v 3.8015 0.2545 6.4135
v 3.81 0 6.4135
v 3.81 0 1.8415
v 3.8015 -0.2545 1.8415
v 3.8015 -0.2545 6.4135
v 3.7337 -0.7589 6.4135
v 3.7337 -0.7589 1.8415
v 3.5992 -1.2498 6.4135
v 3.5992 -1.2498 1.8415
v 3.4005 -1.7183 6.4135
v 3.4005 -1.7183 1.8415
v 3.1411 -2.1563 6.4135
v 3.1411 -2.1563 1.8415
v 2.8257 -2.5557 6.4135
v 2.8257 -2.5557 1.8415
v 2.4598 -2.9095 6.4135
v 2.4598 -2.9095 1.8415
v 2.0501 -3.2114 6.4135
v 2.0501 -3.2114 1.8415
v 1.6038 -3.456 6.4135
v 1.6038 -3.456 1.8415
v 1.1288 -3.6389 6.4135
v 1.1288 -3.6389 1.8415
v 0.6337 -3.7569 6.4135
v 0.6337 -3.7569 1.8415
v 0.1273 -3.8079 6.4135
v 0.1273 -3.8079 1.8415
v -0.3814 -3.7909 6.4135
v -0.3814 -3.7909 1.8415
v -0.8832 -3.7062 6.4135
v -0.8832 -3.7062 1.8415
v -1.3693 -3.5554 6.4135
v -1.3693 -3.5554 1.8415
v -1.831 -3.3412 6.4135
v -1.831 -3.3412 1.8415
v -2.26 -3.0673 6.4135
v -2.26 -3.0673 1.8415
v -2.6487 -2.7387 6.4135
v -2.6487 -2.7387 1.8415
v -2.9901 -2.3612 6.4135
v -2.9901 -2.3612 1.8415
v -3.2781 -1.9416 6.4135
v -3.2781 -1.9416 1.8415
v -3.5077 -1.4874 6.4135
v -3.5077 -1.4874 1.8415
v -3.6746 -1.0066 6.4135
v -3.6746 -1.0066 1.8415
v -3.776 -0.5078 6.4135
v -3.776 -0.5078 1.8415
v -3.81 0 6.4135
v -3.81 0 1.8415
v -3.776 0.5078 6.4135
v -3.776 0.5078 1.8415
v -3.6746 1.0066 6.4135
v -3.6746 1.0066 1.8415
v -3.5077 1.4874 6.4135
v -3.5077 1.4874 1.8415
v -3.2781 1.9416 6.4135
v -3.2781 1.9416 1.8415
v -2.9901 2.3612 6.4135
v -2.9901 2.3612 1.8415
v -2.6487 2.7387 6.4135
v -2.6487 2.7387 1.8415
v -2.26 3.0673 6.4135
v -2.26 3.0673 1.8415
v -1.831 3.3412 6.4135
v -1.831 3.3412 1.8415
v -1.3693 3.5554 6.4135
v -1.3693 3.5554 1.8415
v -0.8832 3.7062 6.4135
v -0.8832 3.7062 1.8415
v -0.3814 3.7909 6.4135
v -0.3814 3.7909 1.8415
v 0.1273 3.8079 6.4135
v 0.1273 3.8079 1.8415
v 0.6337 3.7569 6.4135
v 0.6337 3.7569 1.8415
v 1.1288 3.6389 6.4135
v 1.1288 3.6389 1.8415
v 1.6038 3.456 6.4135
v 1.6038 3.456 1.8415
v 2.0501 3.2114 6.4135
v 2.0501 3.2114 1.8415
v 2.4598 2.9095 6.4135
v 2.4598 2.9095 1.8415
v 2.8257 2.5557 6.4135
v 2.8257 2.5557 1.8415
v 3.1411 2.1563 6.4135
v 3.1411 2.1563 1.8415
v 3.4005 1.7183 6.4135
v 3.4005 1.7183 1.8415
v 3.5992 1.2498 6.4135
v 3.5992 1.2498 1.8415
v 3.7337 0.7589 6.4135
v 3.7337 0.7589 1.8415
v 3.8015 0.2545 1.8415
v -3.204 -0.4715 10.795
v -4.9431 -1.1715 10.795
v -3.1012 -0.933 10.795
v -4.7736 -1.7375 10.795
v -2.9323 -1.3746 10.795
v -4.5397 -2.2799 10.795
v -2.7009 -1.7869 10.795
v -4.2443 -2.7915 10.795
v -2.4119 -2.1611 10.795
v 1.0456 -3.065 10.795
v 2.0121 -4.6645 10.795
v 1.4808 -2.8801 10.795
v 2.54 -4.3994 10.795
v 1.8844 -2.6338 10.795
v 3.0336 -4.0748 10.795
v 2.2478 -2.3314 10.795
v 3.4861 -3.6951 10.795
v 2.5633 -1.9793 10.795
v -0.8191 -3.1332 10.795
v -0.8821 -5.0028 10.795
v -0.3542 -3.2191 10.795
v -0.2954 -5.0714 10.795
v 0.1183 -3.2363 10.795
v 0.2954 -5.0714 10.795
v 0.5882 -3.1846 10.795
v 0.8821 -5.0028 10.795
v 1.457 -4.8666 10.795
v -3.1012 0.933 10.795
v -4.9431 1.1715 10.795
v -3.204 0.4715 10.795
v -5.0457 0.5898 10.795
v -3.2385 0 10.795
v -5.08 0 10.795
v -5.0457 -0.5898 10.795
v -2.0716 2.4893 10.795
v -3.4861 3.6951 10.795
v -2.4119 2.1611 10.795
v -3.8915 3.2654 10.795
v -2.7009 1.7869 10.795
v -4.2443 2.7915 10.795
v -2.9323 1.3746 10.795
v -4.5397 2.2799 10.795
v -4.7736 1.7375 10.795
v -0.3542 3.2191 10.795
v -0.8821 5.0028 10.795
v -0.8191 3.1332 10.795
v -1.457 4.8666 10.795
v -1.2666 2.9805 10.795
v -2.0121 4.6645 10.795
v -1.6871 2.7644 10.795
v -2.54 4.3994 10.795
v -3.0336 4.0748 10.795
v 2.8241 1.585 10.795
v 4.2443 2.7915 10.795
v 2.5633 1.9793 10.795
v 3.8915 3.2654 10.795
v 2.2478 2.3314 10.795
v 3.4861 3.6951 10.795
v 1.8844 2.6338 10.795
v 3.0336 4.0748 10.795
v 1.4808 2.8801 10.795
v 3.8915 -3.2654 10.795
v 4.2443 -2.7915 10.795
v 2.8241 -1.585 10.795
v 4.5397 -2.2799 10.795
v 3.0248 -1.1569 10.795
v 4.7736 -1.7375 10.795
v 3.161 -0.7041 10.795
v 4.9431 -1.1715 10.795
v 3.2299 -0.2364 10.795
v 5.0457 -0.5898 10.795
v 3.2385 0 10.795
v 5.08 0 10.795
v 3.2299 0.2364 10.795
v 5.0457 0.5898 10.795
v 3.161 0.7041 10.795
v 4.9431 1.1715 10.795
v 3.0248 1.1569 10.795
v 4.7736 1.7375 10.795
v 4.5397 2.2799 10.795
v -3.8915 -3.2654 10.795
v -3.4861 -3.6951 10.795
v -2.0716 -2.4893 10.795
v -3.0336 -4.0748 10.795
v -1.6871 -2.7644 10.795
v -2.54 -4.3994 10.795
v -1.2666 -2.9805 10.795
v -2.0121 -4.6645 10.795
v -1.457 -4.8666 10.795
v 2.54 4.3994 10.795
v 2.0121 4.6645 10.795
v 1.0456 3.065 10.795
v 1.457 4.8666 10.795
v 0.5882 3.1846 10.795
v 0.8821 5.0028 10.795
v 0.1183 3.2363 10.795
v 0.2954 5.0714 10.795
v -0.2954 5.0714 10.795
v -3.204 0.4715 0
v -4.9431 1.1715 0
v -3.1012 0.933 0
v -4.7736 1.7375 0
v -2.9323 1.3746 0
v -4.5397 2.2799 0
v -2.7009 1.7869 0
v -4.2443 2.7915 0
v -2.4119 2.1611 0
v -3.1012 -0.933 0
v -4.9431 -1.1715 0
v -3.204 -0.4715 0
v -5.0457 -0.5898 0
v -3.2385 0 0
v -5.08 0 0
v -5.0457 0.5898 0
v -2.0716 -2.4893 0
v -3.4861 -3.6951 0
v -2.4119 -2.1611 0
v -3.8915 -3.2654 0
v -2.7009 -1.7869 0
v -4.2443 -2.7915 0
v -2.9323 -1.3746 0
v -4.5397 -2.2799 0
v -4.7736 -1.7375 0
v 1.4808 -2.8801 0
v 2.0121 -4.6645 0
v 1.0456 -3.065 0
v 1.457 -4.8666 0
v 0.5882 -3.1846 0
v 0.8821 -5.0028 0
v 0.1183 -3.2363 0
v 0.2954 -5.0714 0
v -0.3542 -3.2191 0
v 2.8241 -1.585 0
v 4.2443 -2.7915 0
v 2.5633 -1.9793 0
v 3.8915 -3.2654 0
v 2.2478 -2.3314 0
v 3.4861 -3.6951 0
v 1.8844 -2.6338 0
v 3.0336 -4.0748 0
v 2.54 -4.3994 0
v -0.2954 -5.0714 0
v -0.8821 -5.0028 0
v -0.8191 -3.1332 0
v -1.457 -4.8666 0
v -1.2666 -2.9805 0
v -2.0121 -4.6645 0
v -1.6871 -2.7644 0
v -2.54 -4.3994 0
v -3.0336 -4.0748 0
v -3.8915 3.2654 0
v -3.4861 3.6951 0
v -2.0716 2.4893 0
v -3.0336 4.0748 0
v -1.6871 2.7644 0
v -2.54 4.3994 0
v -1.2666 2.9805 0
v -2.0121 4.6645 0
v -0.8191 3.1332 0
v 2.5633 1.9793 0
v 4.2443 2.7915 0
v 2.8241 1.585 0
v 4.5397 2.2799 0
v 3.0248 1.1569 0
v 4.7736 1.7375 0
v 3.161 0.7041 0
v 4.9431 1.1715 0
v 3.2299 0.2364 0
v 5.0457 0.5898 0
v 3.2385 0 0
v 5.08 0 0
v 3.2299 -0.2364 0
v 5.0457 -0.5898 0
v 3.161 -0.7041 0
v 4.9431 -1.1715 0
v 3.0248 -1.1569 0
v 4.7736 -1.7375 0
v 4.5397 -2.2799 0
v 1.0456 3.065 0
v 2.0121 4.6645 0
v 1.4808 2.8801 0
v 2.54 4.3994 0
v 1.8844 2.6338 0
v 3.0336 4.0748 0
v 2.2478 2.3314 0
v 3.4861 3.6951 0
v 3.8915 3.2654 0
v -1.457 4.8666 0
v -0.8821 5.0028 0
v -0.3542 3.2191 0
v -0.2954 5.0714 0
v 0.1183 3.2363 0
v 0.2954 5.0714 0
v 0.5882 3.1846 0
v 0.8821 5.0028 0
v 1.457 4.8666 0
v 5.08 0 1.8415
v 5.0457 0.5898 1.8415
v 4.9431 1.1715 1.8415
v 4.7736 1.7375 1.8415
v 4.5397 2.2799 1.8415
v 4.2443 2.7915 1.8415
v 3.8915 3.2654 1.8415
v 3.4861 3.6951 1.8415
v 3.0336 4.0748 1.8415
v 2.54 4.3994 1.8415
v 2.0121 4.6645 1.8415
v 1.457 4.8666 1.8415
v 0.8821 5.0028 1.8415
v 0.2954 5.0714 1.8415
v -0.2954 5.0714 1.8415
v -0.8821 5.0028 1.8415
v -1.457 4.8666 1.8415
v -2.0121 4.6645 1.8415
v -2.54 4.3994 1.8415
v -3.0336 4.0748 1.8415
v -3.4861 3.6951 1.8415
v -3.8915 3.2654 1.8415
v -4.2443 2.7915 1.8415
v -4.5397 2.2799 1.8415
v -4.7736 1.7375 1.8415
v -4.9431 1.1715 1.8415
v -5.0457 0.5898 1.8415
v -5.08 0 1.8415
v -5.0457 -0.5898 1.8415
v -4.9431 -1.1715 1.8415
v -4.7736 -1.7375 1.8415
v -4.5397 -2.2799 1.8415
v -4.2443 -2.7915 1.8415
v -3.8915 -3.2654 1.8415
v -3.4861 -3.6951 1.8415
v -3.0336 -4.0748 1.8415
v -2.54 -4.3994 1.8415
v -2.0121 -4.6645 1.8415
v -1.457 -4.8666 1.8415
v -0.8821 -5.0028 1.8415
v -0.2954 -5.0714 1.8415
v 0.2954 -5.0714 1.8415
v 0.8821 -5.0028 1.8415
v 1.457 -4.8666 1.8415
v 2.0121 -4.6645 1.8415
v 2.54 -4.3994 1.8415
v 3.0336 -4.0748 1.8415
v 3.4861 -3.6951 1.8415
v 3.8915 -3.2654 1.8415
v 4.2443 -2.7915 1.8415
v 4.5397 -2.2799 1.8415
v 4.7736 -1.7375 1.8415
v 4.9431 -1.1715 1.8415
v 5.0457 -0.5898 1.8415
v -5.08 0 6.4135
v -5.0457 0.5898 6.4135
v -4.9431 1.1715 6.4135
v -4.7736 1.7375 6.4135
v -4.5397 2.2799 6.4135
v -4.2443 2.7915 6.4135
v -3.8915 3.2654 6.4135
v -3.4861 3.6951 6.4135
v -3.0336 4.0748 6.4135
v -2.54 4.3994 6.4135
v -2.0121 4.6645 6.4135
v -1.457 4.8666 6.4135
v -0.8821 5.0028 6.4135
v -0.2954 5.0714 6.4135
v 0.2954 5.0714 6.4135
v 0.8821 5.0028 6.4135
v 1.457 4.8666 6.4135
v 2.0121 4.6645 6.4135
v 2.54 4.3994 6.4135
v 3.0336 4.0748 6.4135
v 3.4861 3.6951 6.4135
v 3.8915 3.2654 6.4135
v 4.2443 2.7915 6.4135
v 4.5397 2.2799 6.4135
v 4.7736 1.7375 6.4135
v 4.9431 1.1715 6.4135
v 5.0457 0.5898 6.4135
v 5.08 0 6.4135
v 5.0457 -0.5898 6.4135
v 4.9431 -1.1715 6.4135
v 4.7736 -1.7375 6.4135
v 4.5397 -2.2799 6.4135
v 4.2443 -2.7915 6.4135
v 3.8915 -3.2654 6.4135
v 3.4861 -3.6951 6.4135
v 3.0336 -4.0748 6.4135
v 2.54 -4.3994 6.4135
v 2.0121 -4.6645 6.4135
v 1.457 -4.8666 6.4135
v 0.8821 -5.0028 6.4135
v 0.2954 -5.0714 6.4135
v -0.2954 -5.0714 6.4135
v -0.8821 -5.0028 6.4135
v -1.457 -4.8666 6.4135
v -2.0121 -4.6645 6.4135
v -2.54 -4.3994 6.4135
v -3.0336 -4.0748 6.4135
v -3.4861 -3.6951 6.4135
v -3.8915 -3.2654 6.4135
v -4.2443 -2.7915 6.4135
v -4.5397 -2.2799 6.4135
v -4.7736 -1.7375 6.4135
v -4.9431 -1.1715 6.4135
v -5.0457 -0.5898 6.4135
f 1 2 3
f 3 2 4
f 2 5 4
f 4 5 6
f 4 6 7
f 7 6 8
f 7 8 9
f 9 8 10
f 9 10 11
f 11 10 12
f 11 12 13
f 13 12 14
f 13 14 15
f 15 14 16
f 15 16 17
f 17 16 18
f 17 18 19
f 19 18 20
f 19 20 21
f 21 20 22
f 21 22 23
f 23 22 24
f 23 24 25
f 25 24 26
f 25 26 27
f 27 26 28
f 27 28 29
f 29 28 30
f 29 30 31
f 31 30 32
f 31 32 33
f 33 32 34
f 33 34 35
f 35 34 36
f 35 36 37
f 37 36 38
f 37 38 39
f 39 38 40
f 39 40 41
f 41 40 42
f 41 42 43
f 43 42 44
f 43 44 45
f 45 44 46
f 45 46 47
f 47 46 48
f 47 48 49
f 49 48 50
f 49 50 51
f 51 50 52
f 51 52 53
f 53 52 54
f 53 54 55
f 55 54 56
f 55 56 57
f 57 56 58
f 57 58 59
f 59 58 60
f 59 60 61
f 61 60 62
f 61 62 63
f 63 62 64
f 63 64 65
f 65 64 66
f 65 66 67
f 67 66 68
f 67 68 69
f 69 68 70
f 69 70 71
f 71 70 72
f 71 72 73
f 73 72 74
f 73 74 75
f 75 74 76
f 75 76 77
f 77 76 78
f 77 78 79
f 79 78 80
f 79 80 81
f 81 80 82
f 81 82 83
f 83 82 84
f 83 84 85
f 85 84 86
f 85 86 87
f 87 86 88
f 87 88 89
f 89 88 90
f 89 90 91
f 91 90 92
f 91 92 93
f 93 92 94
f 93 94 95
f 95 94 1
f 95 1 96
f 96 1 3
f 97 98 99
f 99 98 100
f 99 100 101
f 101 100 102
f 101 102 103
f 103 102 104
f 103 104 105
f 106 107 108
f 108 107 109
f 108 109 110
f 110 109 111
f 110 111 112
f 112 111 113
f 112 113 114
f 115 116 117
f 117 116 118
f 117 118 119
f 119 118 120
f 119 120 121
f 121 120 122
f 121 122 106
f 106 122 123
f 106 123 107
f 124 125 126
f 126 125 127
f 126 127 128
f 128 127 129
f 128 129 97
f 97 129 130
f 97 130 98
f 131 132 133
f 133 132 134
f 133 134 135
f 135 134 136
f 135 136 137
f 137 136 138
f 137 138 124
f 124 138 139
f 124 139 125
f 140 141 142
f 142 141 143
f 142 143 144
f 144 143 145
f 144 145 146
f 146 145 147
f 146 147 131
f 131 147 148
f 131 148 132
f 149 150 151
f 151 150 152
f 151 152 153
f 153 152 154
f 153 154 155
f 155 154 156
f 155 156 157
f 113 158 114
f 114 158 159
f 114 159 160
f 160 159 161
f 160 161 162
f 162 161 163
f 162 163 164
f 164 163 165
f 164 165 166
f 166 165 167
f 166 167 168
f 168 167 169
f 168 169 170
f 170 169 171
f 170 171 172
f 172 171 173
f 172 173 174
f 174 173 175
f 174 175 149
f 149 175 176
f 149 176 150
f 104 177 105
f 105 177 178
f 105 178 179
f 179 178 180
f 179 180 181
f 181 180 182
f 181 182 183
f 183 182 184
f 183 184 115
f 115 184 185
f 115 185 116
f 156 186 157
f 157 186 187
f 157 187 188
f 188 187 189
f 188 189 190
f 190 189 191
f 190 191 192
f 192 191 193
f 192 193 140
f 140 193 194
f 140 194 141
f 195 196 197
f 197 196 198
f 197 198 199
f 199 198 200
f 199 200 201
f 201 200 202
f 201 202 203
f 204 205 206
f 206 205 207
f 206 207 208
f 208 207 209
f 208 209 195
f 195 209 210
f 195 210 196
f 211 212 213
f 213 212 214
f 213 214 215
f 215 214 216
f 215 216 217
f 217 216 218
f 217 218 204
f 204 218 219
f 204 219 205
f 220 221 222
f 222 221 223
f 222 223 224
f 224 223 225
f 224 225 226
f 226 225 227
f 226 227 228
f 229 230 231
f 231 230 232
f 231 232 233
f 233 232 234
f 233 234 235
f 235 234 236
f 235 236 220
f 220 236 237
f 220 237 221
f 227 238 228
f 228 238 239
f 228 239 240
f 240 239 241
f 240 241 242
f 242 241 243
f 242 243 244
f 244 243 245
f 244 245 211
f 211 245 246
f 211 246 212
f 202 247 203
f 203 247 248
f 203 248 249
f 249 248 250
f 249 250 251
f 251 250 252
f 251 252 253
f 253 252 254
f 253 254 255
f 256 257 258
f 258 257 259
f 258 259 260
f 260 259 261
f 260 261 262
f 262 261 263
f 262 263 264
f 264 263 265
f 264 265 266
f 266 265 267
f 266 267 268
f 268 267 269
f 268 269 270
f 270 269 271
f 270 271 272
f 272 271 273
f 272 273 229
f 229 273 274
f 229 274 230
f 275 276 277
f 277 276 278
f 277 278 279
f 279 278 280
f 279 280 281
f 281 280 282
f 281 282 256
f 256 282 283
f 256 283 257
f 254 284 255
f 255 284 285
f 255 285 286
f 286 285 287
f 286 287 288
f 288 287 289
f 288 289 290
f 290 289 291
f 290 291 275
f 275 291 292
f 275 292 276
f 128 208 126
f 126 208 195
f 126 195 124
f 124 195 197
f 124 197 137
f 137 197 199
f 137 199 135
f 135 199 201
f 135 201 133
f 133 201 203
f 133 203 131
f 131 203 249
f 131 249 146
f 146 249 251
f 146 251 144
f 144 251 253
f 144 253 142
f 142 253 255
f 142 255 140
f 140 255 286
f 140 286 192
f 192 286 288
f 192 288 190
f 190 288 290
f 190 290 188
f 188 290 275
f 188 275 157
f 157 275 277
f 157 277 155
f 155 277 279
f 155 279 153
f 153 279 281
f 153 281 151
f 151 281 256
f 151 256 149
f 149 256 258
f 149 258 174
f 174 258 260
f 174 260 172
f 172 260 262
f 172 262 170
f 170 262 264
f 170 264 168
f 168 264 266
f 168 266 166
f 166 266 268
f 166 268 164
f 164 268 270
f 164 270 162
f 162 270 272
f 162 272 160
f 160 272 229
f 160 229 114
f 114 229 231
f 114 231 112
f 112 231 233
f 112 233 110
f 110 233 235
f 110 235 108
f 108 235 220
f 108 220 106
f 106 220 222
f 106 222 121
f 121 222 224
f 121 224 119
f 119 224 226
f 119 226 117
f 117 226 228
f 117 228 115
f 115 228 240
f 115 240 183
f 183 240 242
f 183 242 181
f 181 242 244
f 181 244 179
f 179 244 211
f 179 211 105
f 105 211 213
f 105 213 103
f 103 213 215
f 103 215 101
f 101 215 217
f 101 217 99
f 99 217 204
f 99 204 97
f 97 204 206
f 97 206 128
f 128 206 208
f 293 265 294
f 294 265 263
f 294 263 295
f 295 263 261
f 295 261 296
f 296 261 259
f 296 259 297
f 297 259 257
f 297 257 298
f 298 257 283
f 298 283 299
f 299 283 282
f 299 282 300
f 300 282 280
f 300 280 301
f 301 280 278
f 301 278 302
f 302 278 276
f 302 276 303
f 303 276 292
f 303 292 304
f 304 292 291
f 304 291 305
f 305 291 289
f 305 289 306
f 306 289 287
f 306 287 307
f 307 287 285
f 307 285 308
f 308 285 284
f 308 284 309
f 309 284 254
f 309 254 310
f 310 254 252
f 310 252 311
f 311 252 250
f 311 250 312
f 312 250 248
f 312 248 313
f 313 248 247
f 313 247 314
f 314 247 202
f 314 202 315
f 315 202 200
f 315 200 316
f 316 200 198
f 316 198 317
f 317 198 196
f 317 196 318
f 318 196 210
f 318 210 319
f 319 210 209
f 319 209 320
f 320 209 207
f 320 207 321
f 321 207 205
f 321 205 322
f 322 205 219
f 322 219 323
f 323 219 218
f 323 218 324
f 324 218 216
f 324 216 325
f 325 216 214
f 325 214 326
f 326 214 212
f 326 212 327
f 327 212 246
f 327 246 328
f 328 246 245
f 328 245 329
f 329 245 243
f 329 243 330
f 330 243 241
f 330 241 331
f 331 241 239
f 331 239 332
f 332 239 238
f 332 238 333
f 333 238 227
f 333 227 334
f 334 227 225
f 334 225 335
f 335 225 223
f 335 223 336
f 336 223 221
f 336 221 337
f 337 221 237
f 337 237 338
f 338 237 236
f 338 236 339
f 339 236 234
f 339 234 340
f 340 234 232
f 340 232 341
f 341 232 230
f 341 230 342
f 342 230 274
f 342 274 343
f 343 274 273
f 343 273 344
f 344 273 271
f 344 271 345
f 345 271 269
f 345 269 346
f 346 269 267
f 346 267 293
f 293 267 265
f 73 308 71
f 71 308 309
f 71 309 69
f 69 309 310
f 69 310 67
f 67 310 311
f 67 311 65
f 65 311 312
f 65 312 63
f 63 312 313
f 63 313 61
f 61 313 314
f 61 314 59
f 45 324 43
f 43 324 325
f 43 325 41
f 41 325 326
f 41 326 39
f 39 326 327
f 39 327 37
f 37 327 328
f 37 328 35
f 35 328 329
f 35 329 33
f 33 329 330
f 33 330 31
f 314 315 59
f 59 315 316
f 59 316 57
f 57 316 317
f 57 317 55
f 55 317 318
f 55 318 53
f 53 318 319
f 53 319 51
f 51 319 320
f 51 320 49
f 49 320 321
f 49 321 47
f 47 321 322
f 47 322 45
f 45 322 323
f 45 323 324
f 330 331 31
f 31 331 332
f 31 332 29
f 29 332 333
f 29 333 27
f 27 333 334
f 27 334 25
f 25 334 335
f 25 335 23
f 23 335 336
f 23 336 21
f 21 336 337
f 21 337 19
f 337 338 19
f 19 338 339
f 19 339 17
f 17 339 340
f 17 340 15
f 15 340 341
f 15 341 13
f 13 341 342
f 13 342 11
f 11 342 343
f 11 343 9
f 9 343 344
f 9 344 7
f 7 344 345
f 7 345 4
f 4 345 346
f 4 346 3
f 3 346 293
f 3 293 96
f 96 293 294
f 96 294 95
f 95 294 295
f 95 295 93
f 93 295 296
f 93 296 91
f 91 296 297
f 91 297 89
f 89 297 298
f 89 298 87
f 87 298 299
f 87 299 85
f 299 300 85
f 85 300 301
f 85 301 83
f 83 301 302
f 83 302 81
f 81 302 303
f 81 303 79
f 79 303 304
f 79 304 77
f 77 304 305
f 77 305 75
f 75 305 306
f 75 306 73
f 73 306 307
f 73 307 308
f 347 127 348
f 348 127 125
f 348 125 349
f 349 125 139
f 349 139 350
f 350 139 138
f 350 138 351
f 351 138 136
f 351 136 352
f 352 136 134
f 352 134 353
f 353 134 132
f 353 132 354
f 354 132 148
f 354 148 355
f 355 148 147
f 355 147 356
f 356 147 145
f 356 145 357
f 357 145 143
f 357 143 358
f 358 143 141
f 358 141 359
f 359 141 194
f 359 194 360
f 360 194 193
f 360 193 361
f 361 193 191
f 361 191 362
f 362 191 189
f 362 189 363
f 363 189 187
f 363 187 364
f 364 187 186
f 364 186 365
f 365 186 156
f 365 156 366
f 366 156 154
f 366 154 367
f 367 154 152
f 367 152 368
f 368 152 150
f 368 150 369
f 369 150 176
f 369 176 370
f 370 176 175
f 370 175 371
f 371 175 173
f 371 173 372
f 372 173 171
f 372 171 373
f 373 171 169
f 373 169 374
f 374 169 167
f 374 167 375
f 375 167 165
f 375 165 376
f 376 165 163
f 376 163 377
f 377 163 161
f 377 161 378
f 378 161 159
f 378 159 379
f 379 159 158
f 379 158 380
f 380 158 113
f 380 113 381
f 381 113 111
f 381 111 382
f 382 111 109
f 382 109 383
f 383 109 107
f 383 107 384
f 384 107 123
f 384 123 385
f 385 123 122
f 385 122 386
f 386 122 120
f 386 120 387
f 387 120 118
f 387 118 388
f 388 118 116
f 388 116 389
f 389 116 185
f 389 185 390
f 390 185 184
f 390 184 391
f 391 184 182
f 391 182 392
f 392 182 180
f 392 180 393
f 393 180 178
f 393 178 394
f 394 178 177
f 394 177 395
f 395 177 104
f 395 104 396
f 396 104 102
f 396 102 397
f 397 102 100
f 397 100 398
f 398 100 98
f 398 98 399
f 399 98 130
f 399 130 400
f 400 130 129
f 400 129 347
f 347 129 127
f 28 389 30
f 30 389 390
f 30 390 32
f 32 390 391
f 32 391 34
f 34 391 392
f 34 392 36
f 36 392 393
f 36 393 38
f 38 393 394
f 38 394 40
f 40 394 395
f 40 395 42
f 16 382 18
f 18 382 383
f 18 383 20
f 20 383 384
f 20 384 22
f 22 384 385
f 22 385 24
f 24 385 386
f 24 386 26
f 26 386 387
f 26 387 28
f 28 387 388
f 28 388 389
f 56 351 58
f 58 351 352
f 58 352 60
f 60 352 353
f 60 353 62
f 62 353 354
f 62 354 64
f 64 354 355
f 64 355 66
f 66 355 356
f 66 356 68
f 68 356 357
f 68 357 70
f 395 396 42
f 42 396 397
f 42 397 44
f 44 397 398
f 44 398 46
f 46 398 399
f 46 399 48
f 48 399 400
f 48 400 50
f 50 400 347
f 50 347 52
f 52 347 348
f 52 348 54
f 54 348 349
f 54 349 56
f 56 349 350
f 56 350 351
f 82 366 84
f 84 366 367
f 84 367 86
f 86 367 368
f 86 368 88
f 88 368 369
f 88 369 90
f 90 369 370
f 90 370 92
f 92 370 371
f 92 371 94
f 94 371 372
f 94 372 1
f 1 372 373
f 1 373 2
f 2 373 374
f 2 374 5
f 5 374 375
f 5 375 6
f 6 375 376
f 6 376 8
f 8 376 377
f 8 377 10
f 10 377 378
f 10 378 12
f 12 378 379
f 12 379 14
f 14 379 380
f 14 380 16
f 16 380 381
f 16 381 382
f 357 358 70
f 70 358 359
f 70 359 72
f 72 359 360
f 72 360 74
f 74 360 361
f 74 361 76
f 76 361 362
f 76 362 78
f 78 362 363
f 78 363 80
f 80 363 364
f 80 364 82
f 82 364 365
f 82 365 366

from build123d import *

# Parameters (mm, degrees)
SKETCH1_R           = 3.81
SKETCH1_R_2         = 3.2385
BOSS_EXTRUDE1_DEPTH = 10.795
SKETCH3_R           = 5.08
SKETCH3_R_2         = 3.81
BOSS_EXTRUDE2_DEPTH = 1.8415
SKETCH4_R           = 5.08
SKETCH4_R_2         = 3.81
BOSS_EXTRUDE3_DEPTH = 4.3815


with BuildPart() as part:
    # Sketch1 → Boss-Extrude1 (new body)
    with BuildSketch(Plane.XY):
        Circle(SKETCH1_R)
        Circle(SKETCH1_R_2, mode=Mode.SUBTRACT)
    extrude(amount=BOSS_EXTRUDE1_DEPTH)

    # Sketch3 → Boss-Extrude2 (add)
    with BuildSketch(Plane.XY.offset(1.8415)):
        Circle(SKETCH3_R)
        Circle(SKETCH3_R_2, mode=Mode.SUBTRACT)
    extrude(amount=-BOSS_EXTRUDE2_DEPTH)

    # Sketch4 → Boss-Extrude3 (add)
    with BuildSketch(Plane.XY.offset(6.4135)):
        Circle(SKETCH4_R)
        Circle(SKETCH4_R_2, mode=Mode.SUBTRACT)
    extrude(amount=BOSS_EXTRUDE3_DEPTH)


solid = part.part
